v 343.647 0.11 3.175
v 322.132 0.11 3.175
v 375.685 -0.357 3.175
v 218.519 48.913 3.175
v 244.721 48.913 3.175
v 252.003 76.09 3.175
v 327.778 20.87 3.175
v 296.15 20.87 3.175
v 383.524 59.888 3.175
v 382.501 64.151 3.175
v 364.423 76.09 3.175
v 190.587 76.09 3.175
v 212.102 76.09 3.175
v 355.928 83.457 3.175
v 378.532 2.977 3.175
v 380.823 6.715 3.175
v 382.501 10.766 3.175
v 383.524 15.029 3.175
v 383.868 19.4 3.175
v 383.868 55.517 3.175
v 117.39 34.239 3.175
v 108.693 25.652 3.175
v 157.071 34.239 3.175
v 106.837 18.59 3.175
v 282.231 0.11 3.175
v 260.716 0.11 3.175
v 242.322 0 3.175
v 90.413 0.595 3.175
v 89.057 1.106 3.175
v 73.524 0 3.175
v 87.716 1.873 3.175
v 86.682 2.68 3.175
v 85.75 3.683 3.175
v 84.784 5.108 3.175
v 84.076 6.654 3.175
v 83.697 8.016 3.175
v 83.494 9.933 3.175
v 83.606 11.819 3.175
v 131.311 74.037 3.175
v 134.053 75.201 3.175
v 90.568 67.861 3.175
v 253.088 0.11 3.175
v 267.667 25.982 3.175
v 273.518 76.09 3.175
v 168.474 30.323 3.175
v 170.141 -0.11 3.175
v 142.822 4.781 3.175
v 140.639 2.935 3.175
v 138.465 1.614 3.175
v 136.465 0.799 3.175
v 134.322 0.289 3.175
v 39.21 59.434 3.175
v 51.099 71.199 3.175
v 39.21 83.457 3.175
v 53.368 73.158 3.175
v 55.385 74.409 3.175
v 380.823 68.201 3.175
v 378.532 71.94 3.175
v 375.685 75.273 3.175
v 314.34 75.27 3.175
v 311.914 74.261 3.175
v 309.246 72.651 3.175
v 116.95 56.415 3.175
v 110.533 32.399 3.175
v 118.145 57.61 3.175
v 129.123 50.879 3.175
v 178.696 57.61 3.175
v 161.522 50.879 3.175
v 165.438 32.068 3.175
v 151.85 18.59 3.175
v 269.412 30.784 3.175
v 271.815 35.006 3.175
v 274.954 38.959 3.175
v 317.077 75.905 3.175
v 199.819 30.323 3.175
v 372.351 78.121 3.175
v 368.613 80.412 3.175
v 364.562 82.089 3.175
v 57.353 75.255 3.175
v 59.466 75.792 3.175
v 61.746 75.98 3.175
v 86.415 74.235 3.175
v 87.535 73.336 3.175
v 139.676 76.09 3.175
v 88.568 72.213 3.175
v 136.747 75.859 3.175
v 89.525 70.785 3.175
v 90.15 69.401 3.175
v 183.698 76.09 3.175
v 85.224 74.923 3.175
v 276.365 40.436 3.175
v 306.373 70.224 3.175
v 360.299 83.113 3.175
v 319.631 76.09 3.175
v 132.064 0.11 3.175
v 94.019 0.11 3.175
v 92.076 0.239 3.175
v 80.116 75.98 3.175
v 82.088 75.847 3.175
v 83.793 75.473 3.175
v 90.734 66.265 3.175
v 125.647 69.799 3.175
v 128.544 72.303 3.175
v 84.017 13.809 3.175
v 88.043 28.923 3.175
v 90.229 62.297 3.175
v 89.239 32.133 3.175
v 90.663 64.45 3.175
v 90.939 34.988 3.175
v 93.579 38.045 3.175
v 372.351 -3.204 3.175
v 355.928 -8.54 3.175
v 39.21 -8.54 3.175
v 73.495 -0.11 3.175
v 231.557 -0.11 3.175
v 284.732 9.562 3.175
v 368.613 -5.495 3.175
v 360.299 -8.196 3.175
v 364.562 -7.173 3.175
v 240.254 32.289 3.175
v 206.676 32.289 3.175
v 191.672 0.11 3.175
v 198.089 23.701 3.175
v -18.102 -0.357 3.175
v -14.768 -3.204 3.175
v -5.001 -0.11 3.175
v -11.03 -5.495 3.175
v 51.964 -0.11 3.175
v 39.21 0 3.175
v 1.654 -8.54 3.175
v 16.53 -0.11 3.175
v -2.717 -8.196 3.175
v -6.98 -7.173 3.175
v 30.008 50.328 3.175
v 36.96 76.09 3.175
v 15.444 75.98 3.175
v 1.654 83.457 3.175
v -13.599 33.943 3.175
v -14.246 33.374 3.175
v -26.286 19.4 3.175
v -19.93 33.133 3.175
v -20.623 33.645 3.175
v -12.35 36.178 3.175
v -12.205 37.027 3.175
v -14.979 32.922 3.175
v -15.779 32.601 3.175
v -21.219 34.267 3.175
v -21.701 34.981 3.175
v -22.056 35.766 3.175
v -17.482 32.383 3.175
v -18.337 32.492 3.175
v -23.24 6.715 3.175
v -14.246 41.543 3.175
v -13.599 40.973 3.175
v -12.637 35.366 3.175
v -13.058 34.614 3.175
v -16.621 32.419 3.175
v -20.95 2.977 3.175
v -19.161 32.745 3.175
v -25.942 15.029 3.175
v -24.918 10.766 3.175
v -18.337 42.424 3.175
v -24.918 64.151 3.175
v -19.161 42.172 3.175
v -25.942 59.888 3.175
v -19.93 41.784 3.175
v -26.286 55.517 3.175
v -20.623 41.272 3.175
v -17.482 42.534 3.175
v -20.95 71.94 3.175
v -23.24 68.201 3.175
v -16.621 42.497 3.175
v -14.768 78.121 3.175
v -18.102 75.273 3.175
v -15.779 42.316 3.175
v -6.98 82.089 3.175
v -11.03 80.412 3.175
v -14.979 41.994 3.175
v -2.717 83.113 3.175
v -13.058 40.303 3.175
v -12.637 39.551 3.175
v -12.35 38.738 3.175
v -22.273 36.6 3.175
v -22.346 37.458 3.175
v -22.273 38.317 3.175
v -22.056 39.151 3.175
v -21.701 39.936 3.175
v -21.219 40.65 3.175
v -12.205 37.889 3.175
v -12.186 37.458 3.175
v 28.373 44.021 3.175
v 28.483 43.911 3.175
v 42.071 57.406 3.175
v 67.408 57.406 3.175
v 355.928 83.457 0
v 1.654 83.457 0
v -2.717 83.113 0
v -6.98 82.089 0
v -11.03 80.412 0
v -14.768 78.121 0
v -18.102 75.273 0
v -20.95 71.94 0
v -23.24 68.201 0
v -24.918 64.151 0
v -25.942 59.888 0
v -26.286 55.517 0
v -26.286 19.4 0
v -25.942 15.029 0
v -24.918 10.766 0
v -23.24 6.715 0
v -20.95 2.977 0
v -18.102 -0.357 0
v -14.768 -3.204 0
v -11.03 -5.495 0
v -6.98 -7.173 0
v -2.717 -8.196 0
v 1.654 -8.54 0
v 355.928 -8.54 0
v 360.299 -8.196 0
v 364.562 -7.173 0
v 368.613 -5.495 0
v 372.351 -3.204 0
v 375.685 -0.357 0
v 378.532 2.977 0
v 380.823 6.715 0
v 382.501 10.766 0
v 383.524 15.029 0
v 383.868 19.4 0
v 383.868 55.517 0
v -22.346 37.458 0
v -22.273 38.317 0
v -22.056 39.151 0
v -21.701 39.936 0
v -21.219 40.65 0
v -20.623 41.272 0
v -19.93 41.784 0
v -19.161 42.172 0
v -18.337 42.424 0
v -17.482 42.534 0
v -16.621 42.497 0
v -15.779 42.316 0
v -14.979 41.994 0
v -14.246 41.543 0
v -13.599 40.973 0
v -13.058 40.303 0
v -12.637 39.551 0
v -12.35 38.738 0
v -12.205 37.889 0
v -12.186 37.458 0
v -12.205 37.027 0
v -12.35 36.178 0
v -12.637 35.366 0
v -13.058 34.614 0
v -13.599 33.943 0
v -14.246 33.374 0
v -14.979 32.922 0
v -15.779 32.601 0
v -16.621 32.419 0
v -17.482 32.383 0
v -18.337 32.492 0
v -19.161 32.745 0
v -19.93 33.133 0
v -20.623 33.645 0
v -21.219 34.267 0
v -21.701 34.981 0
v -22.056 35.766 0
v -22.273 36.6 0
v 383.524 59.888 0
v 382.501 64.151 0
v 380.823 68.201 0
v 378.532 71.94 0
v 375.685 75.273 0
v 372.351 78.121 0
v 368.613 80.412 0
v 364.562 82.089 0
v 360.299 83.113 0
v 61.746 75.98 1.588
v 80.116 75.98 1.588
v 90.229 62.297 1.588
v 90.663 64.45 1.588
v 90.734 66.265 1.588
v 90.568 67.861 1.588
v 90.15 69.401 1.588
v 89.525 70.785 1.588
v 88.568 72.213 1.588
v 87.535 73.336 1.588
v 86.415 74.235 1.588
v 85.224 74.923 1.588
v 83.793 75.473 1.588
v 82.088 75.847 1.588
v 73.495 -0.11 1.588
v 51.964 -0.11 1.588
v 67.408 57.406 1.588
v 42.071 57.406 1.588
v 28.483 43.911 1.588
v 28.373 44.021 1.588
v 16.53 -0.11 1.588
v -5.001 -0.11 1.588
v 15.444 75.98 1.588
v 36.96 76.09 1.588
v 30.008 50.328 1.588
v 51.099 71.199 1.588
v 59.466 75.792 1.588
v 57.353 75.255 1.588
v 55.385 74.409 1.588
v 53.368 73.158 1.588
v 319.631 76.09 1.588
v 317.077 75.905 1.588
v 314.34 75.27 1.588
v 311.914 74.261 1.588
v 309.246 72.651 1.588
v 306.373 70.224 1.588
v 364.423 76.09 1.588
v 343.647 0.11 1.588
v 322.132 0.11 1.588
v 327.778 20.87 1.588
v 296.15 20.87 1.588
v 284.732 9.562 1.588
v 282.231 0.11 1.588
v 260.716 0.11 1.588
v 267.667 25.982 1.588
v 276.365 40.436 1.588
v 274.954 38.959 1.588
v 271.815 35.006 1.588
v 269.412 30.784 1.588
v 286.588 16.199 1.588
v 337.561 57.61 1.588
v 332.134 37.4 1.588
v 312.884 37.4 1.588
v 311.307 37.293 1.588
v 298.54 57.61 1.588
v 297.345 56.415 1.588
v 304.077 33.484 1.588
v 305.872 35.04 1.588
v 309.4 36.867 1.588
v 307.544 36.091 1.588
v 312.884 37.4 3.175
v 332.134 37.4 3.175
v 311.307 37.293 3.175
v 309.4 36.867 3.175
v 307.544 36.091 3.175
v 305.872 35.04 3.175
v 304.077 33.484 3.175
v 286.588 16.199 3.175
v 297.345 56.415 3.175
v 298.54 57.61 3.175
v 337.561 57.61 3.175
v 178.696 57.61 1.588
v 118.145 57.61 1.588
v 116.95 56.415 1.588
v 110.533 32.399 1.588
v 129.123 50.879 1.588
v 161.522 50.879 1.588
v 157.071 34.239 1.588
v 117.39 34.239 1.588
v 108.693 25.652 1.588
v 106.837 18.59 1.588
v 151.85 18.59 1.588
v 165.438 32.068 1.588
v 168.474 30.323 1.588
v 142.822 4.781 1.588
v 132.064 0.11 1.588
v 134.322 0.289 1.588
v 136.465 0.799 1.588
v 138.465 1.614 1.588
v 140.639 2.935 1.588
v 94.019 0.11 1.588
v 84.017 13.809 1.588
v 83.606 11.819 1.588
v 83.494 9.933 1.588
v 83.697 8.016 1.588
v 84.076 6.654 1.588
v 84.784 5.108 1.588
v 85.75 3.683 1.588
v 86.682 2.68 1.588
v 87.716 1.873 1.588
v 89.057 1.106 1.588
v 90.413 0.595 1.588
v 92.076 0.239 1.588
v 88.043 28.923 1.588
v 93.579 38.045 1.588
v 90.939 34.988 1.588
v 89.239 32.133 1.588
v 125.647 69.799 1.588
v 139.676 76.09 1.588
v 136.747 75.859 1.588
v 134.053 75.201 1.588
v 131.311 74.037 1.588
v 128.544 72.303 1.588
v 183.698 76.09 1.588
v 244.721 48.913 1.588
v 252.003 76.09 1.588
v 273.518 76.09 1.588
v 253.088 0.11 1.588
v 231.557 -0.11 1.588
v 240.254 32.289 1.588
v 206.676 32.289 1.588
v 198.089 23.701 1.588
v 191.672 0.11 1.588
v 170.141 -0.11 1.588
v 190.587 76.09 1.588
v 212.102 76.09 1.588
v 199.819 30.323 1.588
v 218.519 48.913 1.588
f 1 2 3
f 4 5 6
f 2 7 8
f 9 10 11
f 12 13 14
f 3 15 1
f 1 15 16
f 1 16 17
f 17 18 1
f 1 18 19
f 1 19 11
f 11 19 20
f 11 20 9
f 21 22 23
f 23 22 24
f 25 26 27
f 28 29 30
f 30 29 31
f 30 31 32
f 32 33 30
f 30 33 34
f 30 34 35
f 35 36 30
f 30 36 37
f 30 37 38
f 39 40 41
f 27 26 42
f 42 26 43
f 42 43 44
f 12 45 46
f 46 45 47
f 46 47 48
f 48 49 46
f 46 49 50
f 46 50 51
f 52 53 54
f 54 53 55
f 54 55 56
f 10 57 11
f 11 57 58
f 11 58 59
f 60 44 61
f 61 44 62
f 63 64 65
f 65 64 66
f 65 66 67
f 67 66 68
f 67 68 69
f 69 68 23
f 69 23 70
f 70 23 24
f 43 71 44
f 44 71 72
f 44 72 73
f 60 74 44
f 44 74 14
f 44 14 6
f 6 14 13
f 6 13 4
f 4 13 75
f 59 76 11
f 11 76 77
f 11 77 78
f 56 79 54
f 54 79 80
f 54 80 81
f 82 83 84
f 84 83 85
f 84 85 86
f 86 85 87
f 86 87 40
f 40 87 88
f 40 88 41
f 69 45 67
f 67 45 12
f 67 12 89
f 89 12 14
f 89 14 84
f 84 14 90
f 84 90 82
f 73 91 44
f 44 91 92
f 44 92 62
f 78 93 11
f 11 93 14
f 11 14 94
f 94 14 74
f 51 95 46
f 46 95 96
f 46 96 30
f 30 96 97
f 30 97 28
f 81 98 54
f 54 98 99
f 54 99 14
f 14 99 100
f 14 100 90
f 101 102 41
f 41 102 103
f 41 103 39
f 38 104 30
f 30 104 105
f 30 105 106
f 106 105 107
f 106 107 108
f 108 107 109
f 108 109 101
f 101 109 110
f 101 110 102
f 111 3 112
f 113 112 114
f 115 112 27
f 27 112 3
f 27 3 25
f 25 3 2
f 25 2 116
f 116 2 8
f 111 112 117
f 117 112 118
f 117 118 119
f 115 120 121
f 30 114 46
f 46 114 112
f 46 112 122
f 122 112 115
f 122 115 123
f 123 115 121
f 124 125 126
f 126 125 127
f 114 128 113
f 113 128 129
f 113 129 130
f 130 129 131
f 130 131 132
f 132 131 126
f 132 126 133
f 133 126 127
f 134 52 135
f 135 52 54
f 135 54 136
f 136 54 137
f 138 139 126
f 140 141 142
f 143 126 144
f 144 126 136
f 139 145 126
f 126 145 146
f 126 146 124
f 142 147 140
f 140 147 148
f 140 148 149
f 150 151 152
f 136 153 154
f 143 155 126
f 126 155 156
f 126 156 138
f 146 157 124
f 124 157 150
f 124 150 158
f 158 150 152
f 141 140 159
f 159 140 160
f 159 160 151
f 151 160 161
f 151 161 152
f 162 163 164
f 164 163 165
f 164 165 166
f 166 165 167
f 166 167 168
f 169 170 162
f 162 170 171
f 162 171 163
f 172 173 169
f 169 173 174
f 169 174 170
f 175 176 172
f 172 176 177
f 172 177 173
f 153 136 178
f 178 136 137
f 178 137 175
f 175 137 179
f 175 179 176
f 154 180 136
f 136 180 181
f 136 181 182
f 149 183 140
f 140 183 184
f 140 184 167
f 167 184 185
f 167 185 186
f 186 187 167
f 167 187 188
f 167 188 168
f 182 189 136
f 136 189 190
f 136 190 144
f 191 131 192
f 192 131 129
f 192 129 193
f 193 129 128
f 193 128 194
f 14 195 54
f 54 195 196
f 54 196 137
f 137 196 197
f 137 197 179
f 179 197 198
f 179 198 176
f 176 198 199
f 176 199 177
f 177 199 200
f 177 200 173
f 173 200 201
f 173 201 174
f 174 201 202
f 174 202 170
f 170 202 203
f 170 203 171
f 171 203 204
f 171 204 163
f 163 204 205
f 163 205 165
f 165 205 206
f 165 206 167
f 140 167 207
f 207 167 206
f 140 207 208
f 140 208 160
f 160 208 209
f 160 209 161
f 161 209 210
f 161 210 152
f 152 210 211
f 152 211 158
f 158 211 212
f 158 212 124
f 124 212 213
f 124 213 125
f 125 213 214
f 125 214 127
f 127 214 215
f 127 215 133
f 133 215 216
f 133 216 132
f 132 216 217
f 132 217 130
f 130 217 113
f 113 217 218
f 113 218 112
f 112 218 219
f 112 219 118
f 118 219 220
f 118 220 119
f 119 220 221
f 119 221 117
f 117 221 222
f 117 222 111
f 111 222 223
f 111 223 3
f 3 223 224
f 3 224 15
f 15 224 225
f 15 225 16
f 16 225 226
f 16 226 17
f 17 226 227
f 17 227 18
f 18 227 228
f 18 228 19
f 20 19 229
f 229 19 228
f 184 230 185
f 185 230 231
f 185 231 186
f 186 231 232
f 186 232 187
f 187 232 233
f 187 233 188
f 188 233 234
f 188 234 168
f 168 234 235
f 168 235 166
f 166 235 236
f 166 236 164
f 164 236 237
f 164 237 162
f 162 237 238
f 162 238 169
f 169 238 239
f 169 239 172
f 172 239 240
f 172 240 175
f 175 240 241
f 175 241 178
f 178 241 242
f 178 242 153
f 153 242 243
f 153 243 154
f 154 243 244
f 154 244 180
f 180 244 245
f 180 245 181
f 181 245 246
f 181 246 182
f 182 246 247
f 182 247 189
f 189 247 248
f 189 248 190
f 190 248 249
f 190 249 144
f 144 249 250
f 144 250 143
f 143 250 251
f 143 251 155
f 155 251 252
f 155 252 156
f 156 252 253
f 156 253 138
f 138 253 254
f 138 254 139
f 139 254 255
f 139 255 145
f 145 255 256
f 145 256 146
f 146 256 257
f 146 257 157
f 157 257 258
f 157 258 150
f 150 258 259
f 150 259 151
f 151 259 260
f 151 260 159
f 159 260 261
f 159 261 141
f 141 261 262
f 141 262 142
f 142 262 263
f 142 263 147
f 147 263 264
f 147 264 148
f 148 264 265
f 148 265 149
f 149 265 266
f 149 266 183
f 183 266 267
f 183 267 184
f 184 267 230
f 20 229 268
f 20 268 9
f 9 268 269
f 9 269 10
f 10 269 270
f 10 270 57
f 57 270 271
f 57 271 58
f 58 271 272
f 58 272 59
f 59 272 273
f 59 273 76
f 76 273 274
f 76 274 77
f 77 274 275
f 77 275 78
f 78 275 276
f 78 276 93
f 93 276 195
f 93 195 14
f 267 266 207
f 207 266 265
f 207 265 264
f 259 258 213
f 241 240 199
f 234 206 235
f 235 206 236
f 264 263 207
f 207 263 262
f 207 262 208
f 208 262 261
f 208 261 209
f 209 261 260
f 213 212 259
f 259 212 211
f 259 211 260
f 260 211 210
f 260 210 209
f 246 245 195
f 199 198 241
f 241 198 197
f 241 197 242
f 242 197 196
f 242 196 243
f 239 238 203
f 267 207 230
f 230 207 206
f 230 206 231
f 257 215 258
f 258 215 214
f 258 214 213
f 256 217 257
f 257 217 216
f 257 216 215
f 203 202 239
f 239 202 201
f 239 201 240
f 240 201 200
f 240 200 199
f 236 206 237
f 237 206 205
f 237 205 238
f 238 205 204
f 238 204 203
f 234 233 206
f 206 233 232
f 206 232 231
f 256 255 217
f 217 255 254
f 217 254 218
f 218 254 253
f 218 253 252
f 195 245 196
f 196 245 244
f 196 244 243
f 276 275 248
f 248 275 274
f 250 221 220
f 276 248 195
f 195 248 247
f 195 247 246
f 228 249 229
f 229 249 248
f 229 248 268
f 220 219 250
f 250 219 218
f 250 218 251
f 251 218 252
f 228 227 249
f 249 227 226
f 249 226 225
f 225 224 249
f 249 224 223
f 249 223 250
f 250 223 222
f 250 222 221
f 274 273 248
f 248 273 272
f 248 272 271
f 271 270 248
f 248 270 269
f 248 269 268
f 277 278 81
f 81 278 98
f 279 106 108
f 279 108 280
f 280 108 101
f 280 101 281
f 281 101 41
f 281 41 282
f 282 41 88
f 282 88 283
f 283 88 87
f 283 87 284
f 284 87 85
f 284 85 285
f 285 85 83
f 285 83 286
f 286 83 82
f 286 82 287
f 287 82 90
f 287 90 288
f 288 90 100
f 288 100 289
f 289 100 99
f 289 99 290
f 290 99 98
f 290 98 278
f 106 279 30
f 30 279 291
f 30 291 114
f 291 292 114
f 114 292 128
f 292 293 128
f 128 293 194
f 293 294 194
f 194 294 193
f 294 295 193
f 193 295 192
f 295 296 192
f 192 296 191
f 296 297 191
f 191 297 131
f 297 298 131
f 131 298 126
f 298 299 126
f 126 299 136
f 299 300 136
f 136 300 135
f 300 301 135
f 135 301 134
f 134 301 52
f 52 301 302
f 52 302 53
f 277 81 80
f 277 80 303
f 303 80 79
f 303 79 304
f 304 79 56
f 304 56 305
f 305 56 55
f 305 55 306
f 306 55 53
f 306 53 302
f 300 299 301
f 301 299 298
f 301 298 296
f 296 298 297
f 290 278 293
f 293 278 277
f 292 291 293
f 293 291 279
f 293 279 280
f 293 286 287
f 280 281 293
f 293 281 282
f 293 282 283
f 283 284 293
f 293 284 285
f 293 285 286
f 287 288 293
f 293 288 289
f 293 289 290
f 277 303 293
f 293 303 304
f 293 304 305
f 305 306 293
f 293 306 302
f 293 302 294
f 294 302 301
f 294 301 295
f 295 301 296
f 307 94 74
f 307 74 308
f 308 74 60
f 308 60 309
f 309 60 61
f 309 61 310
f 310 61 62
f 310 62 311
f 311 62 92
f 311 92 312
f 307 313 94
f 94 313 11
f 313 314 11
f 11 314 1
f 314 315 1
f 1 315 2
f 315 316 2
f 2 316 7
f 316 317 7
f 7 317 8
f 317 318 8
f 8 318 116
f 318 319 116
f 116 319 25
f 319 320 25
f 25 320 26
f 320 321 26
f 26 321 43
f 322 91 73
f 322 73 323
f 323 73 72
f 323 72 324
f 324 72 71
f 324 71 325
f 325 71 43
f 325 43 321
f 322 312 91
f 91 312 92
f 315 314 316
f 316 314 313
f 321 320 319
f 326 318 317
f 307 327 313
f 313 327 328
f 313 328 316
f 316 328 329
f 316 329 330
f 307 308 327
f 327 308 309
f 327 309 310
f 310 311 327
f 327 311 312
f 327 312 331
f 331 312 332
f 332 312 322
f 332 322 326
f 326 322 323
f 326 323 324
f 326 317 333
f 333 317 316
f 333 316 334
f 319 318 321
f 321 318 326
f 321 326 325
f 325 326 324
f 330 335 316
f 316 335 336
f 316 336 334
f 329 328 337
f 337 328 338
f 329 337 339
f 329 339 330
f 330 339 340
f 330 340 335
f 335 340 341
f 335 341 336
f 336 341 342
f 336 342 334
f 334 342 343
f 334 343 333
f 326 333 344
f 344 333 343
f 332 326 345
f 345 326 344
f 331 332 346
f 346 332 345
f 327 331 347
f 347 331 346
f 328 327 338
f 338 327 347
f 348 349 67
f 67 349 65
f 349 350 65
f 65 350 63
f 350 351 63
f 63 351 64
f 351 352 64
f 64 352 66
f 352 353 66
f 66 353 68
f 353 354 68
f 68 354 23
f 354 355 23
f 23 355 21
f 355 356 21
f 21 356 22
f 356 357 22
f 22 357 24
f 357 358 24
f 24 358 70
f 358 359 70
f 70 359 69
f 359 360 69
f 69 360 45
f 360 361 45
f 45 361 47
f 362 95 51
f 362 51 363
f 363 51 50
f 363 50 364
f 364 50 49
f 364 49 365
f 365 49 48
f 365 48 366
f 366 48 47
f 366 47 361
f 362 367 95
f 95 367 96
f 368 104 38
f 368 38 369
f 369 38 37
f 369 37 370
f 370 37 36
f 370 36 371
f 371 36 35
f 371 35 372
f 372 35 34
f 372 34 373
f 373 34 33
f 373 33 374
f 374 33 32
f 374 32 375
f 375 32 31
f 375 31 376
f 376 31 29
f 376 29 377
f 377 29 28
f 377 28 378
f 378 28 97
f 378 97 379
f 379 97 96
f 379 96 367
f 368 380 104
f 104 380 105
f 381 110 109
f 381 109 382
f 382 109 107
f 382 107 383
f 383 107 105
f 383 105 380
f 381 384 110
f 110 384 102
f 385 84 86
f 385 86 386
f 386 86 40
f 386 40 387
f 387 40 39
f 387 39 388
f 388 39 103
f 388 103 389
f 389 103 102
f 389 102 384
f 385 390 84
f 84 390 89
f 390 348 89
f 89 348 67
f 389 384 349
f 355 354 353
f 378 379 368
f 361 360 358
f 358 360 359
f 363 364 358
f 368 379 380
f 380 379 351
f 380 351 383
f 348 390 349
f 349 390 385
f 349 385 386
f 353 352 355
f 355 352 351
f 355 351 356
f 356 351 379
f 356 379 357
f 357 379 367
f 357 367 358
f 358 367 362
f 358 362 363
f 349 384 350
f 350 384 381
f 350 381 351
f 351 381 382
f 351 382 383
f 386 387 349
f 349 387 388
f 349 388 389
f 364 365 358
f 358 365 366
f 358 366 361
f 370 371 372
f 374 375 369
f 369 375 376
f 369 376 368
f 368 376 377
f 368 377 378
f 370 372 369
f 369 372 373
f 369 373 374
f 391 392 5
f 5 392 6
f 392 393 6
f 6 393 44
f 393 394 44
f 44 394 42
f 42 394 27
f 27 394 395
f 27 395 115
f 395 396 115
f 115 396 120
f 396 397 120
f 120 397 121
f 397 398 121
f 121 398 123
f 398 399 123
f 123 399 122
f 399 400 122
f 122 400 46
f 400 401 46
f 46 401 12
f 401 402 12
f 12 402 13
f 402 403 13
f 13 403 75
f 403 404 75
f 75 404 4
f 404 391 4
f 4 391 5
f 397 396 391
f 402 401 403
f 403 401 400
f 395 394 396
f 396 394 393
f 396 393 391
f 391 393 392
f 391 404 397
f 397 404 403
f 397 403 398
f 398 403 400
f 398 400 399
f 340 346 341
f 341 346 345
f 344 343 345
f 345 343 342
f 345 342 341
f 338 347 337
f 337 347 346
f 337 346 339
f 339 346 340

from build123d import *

# Parameters (mm, degrees)
SKETCH1_R           = 5.08
BOSS_EXTRUDE1_DEPTH = 3.175
CUT_EXTRUDE1_DEPTH  = 1.5875


with BuildPart() as part:
    # Sketch1 → Boss-Extrude1 (new body)
    with BuildSketch(Plane.XY):
        with BuildLine():
            Line((1.654255886, 83.456903623), (355.928440518, 83.456903623))
            ThreePointArc((355.928440518, 83.456903623), (375.685003985, 75.273467089), (383.868440518, 55.516903623))
            Line((383.868440518, 55.516903623), (383.868440518, 19.399703332))
            ThreePointArc((383.868440518, 19.399703332), (375.685003985, -0.356860135), (355.928440518, -8.540296668))
            Line((355.928440518, -8.540296668), (1.654255886, -8.540296668))
            ThreePointArc((1.654255886, -8.540296668), (-18.10230758, -0.356860135), (-26.285744114, 19.399703332))
            Line((-26.285744114, 19.399703332), (-26.285744114, 55.516903623))
            ThreePointArc((-26.285744114, 55.516903623), (-18.10230758, 75.273467089), (1.654255886, 83.456903623))
        make_face()
        with Locations((-17.266410752, 37.458303477)):
            Circle(SKETCH1_R, mode=Mode.SUBTRACT)
    extrude(amount=BOSS_EXTRUDE1_DEPTH)

    # Sketch2 → Cut-Extrude1 (cut)
    # profile 1 of 4: a face of its own
    with BuildSketch(Plane.XY.offset(3.175)):
        with BuildLine():
            add(Edge.make_bspline(
                [(80.116160991, 75.979814241), (80.572945846, 75.96838805), (81.464390071, 75.946089122), (82.761585994, 75.753265531), (83.980876738, 75.440347312), (85.118214528, 75.001140575), (86.167411339, 74.432836909), (87.120305277, 73.724053119), (88.006862222, 72.910504162), (88.781572714, 71.965880548), (89.463729353, 70.949833691), (89.998399018, 69.858693237), (90.395196355, 68.718158749), (90.649199151, 67.529264566), (90.751859695, 66.288698388), (90.742663347, 64.996679474), (90.564024557, 63.652201513), (90.342563176, 62.756325839), (90.228978328, 62.296842105)],
                knots=[0, 0, 0, 0, 1.092991326, 2.13304096, 3.131445324, 4.100957639, 5.0444535, 5.97821715, 6.937276196, 7.91745169, 8.895536054, 9.86089696, 10.817407172, 11.77982689, 12.762650102, 13.791815242, 14.867448903, 16, 16, 16, 16], degree=3))
            Line((90.228978328, 62.296842105), (73.494860681, -0.110092879))
            Line((73.494860681, -0.110092879), (51.963839009, -0.110092879))
            Line((51.963839009, -0.110092879), (67.408297214, 57.405572755))
            Line((67.408297214, 57.405572755), (42.07120743, 57.405572755))
            Line((42.07120743, 57.405572755), (28.482600619, 43.911331269))
            Line((28.482600619, 43.911331269), (28.37250774, 44.021424149))
            Line((28.37250774, 44.021424149), (16.529659443, -0.110092879))
            Line((16.529659443, -0.110092879), (-5.001362229, -0.110092879))
            Line((-5.001362229, -0.110092879), (15.444458204, 75.979814241))
            Line((15.444458204, 75.979814241), (36.959752322, 76.089907121))
            Line((36.959752322, 76.089907121), (30.008173375, 50.328173375))
            Line((30.008173375, 50.328173375), (51.098823529, 71.198637771))
            add(Edge.make_bspline(
                [(51.098823529, 71.198637771), (51.496763688, 71.577188987), (52.27625468, 72.318700635), (53.521895338, 73.303761259), (54.816419285, 74.114204336), (56.128007139, 74.809775832), (57.488939848, 75.322665393), (58.877070061, 75.707773792), (60.302751754, 75.930755526), (61.263328154, 75.963398777), (61.746377709, 75.979814241)],
                knots=[0, 0, 0, 0, 1.099200487, 2.15312996, 3.172151549, 4.153175518, 5.119892887, 6.077164679, 7.033054793, 8, 8, 8, 8], degree=3))
            Line((61.746377709, 75.979814241), (80.116160991, 75.979814241))
        make_face()
    # profile 2 of 4: a face of its own
    with BuildSketch(Plane.XY.offset(3.175)):
        with BuildLine():
            Line((118.145386997, 57.61003096), (116.950092879, 56.414736842))
            Line((116.950092879, 56.414736842), (110.533250774, 32.39876161))
            Line((110.533250774, 32.39876161), (129.123219814, 50.878637771))
            Line((129.123219814, 50.878637771), (161.521981424, 50.878637771))
            Line((161.521981424, 50.878637771), (157.071083591, 34.238885449))
            Line((157.071083591, 34.238885449), (117.390464396, 34.238885449))
            Line((117.390464396, 34.238885449), (108.693126935, 25.651640867))
            Line((108.693126935, 25.651640867), (106.837275542, 18.58996904))
            Line((106.837275542, 18.58996904), (151.849535604, 18.58996904))
            Line((151.849535604, 18.58996904), (165.438142415, 32.068482972))
            Line((165.438142415, 32.068482972), (168.473560372, 30.322724458))
            Line((168.473560372, 30.322724458), (142.821919505, 4.781176471))
            add(Edge.make_bspline(
                [(142.821919505, 4.781176471), (142.42558897, 4.40563779), (141.648400195, 3.669221032), (140.378629909, 2.72983858), (139.086443259, 1.922007685), (137.759547175, 1.249330178), (136.38410853, 0.749693532), (134.97817596, 0.386207664), (133.534361605, 0.157196007), (132.557907008, 0.125909425), (132.064272446, 0.110092879)],
                knots=[0, 0, 0, 0, 1.087710149, 2.132957327, 3.142311131, 4.123953504, 5.092881289, 6.053713067, 7.016078678, 8, 8, 8, 8], degree=3))
            Line((132.064272446, 0.110092879), (94.019318885, 0.110092879))
            add(Edge.make_bspline(
                [(94.019318885, 0.110092879), (93.562533058, 0.121495697), (92.671086936, 0.143749009), (91.373904534, 0.336897705), (90.159302422, 0.647440779), (89.030743975, 1.086514673), (88.001085474, 1.669343073), (87.027661194, 2.337531495), (86.162052775, 3.167267257), (85.395324382, 4.11011912), (84.737343068, 5.138224272), (84.219465728, 6.234858978), (83.812687134, 7.369301457), (83.586471856, 8.568042434), (83.471463009, 9.811604079), (83.509196493, 11.108834081), (83.679845331, 12.453440135), (83.902432286, 13.3493112), (84.016594427, 13.80879257)],
                knots=[0, 0, 0, 0, 1.094945795, 2.136855229, 3.137044923, 4.096584279, 5.030749513, 5.969051044, 6.920650617, 7.894578144, 8.878114772, 9.839711021, 10.797931648, 11.759527897, 12.756631189, 13.787866602, 14.865423694, 16, 16, 16, 16], degree=3))
            Line((84.016594427, 13.80879257), (88.042848297, 28.922972136))
            add(Edge.make_bspline(
                [(88.042848297, 28.922972136), (88.304583021, 29.762249011), (88.829432829, 31.445229009), (90.10811721, 33.789754209), (91.637210285, 36.050838621), (92.922716932, 37.371021477), (93.578947368, 38.04495356)],
                knots=[0, 0, 0, 0, 0.975136166, 1.955415087, 2.956272335, 4, 4, 4, 4], degree=3))
            Line((93.578947368, 38.04495356), (125.647430341, 69.798885449))
            add(Edge.make_bspline(
                [(125.647430341, 69.798885449), (126.173613681, 70.301463912), (127.199856843, 71.281669234), (128.852623455, 72.559024637), (130.536996878, 73.662817435), (132.286478981, 74.531301715), (134.063374504, 75.247349918), (135.898052148, 75.724007994), (137.772865678, 76.040497331), (139.040772571, 76.073408073), (139.676408669, 76.089907121)],
                knots=[0, 0, 0, 0, 1.104987577, 2.155115633, 3.169368792, 4.159784375, 5.118388166, 6.074904324, 7.034897349, 8, 8, 8, 8], degree=3))
            Line((139.676408669, 76.089907121), (183.697832817, 76.089907121))
            Line((183.697832817, 76.089907121), (178.696470588, 57.61003096))
            Line((178.696470588, 57.61003096), (118.145386997, 57.61003096))
        make_face()
    # profile 3 of 4: a face of its own
    with BuildSketch(Plane.XY.offset(3.175)):
        Polygon((252.002600619, 76.089907121), (273.517894737, 76.089907121), (253.087801858, 0.110092879), (231.556780186, -0.110092879), (240.254117647, 32.288668731), (206.675789474, 32.288668731), (198.088544892, 23.701424149), (191.671702786, 0.110092879), (170.140681115, -0.110092879), (190.586501548, 76.089907121), (212.101795666, 76.089907121), (199.818575851, 30.322724458), (218.518637771, 48.912693498), (244.720743034, 48.912693498), align=None)
    # profile 4 of 4: a face of its own
    with BuildSketch(Plane.XY.offset(3.175)):
        with BuildLine():
            Line((319.631083591, 76.089907121), (364.423157895, 76.089907121))
            Line((364.423157895, 76.089907121), (343.647058824, 0.110092879))
            Line((343.647058824, 0.110092879), (322.131764706, 0.110092879))
            Line((322.131764706, 0.110092879), (327.777956656, 20.870464396))
            Line((327.777956656, 20.870464396), (296.149845201, 20.870464396))
            Line((296.149845201, 20.870464396), (284.731640867, 9.562352941))
            Line((284.731640867, 9.562352941), (282.230959752, 0.110092879))
            Line((282.230959752, 0.110092879), (260.715665635, 0.110092879))
            Line((260.715665635, 0.110092879), (267.667244582, 25.981919505))
            add(Edge.make_bspline(
                [(267.667244582, 25.981919505), (267.86289602, 26.645371072), (268.253866848, 27.971148241), (268.999777356, 29.910929371), (269.877436893, 31.800461991), (270.912218434, 33.634395292), (272.071806246, 35.421190898), (273.36391227, 37.159516171), (274.805405218, 38.829815678), (275.840128897, 39.895431078), (276.364582043, 40.435541796)],
                knots=[0, 0, 0, 0, 0.972188851, 1.942727767, 2.918792729, 3.89888478, 4.900660299, 5.911935627, 6.941657613, 8, 8, 8, 8], degree=3))
            Line((276.364582043, 40.435541796), (306.372755418, 70.223529412))
            add(Edge.make_bspline(
                [(306.372755418, 70.223529412), (306.868599043, 70.68811599), (307.842110474, 71.600259095), (309.403215924, 72.799594193), (311.01411719, 73.806711452), (312.651676458, 74.649150324), (314.336608539, 75.305189439), (316.067863306, 75.757242357), (317.839849704, 76.032176586), (319.032476302, 76.07061432), (319.631083591, 76.089907121)],
                knots=[0, 0, 0, 0, 1.09520327, 2.15026038, 3.168190723, 4.15492977, 5.115689715, 6.0773418, 7.034972711, 8, 8, 8, 8], degree=3))
        make_face()
        with BuildLine():
            Line((332.134489164, 37.400123839), (337.560495356, 57.61003096))
            Line((337.560495356, 57.61003096), (298.540433437, 57.61003096))
            Line((298.540433437, 57.61003096), (297.345139319, 56.414736842))
            Line((297.345139319, 56.414736842), (286.58749226, 16.199380805))
            Line((286.58749226, 16.199380805), (304.076532508, 33.483962848))
            add(Edge.make_bspline(
                [(304.076532508, 33.483962848), (304.401991303, 33.793484328), (305.041456362, 34.401635574), (306.065728499, 35.204466573), (307.125276195, 35.892296283), (308.222062479, 36.433077589), (309.339430868, 36.874999281), (310.492804301, 37.163848907), (311.676386408, 37.365984392), (312.479426341, 37.388687169), (312.883962848, 37.400123839)],
                knots=[0, 0, 0, 0, 1.088018936, 2.137751703, 3.149265309, 4.143636785, 5.096896491, 6.055307392, 7.020348651, 8, 8, 8, 8], degree=3))
            Line((312.883962848, 37.400123839), (332.134489164, 37.400123839))
        make_face(mode=Mode.SUBTRACT)
    extrude(amount=-CUT_EXTRUDE1_DEPTH, mode=Mode.SUBTRACT)


solid = part.part
